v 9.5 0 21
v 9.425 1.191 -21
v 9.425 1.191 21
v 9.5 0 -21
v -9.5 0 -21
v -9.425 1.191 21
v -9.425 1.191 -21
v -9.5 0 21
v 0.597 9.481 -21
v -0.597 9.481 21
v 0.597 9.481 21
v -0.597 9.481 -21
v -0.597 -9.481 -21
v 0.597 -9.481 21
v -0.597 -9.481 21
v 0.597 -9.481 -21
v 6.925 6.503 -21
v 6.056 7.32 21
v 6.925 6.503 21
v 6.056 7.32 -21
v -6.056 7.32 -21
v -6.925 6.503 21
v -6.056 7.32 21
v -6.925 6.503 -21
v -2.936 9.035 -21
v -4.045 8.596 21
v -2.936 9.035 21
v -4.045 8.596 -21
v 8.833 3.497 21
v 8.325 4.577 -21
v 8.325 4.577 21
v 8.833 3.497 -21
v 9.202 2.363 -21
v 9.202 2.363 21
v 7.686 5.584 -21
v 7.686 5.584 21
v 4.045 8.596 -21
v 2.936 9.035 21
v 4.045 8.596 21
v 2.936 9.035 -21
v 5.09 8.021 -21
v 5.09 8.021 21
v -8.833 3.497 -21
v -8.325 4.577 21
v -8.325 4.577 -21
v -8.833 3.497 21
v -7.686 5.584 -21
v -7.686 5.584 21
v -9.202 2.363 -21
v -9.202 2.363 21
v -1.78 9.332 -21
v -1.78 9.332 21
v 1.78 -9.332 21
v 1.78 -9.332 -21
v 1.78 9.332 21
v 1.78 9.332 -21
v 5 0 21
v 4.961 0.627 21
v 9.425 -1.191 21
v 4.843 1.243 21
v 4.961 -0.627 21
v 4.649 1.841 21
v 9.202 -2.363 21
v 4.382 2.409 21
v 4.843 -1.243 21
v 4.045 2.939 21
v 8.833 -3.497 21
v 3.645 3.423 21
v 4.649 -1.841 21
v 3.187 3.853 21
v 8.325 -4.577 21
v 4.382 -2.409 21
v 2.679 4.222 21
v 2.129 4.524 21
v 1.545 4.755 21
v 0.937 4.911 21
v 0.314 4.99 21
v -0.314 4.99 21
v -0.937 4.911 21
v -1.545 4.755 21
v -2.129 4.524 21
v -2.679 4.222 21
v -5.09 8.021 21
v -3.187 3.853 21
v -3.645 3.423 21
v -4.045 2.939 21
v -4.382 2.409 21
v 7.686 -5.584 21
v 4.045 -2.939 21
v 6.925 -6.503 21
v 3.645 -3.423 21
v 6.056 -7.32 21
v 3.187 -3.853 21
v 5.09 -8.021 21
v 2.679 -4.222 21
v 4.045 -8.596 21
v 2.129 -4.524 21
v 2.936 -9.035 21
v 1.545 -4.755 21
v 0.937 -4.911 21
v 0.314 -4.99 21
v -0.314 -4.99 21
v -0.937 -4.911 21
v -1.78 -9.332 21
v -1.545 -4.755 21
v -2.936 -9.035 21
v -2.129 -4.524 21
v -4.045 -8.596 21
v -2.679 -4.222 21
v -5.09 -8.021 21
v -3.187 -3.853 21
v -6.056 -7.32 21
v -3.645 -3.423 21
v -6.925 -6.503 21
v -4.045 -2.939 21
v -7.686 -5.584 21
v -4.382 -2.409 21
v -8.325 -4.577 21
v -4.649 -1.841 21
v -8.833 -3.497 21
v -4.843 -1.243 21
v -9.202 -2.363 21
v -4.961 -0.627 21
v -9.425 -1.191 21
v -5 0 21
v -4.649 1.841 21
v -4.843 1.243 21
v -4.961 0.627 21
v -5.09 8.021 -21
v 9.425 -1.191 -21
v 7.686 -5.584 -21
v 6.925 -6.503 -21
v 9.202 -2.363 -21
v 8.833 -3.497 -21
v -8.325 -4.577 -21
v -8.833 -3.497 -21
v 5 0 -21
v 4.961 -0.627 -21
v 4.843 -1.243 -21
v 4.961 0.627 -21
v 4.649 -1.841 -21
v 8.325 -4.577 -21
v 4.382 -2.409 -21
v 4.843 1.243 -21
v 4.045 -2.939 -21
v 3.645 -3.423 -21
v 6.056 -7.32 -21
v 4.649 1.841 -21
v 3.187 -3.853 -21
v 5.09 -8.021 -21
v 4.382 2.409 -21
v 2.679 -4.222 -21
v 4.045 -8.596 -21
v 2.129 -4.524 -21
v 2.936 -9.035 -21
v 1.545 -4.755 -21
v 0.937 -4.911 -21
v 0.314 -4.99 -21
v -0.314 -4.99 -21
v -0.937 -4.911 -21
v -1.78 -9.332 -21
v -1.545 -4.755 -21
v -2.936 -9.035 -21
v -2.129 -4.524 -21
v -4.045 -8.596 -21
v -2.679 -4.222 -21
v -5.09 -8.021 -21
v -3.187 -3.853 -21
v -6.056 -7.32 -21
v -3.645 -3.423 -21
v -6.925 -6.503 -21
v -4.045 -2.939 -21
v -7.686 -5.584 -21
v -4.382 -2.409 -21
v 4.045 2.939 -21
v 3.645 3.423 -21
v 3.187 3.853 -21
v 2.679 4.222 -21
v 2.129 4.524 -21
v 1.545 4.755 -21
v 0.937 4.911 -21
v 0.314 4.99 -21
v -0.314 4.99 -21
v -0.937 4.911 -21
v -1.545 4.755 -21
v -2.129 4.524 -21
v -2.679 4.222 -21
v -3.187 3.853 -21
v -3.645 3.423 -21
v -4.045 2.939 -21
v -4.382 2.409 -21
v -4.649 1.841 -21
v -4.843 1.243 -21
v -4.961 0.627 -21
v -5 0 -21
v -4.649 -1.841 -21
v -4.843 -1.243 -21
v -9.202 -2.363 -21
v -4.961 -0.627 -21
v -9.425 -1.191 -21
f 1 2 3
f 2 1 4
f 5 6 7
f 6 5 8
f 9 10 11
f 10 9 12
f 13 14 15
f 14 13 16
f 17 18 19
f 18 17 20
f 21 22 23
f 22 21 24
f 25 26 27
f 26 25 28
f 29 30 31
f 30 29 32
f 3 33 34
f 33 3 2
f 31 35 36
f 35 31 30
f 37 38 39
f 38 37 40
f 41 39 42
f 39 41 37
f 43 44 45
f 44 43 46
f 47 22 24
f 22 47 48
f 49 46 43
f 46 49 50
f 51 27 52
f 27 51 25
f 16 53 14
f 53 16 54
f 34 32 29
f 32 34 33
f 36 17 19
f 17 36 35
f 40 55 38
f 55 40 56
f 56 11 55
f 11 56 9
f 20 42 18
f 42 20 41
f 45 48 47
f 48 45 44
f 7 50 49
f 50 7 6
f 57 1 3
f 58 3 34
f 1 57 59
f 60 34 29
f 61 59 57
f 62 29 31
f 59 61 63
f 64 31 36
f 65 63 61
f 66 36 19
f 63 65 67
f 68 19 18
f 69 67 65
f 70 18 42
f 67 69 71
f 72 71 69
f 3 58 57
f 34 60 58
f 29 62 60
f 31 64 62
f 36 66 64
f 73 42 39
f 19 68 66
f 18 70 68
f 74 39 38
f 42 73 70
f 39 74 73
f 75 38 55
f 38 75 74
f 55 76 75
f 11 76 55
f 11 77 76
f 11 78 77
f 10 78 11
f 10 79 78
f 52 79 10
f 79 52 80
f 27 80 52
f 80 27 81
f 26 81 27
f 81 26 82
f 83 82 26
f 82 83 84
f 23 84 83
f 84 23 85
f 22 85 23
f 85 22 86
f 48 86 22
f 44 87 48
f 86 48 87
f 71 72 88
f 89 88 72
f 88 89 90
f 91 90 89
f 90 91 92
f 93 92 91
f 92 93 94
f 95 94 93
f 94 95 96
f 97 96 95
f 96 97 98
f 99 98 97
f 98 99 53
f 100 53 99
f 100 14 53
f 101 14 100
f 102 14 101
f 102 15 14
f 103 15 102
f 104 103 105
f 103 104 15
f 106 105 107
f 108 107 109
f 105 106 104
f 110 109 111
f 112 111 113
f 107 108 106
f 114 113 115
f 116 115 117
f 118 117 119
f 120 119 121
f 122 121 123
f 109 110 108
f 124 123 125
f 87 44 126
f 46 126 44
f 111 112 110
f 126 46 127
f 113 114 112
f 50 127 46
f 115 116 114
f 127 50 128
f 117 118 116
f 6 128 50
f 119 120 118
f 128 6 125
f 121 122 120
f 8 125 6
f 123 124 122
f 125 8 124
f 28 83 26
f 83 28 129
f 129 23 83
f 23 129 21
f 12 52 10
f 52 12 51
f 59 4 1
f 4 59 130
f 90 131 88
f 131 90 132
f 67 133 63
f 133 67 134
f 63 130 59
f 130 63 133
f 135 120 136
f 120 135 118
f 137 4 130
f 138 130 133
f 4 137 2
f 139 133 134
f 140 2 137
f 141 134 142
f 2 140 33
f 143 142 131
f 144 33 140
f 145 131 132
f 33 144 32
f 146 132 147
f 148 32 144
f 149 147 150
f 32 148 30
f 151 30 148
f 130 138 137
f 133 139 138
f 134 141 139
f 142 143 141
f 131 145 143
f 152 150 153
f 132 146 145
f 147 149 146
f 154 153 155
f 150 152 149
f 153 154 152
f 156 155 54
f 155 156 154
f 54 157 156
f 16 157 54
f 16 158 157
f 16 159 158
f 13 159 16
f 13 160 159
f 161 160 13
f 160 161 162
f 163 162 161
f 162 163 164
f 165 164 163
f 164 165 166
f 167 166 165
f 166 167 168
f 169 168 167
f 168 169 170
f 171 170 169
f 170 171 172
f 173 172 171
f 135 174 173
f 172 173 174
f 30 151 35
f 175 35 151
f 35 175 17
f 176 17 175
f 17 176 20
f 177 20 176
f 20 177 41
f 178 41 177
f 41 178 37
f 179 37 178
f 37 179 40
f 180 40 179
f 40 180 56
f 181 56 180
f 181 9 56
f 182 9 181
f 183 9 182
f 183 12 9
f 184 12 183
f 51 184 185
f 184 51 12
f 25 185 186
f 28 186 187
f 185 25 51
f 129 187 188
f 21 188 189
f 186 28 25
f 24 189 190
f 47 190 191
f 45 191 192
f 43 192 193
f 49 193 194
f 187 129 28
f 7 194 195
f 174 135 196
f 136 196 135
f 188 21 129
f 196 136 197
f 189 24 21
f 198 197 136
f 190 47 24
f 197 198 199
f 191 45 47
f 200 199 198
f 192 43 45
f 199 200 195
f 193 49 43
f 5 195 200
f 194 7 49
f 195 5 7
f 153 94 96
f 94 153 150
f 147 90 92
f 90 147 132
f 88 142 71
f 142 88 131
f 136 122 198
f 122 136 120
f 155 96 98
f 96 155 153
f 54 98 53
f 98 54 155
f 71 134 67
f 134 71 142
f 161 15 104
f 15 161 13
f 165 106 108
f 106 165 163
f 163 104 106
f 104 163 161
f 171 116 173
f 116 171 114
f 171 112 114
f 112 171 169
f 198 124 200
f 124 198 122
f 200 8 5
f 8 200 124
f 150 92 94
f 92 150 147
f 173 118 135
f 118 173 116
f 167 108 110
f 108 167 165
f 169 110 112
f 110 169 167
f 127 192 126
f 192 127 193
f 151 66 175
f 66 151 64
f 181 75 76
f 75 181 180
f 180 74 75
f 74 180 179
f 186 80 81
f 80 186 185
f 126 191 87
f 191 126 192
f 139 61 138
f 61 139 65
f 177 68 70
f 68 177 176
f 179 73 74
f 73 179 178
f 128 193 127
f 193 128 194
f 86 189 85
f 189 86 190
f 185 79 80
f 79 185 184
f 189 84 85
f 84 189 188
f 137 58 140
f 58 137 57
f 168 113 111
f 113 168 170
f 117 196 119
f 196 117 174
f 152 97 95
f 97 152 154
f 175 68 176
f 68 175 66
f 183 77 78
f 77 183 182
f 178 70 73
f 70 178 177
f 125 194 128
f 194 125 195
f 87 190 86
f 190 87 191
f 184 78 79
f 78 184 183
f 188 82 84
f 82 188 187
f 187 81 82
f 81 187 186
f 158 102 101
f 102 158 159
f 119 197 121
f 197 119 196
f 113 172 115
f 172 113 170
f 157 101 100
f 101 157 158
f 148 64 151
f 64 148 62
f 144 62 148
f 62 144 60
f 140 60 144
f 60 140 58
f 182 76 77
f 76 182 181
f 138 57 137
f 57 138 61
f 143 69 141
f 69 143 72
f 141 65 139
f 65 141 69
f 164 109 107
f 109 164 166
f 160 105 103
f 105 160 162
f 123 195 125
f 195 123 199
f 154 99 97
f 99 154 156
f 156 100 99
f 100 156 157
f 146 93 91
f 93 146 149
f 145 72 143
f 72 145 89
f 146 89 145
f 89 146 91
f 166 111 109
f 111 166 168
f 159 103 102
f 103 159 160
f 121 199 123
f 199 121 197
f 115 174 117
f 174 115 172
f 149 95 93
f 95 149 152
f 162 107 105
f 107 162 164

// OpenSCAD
$fn = 50;


difference() {
	union() {
		translate(v = [0, 0, -21.0000000000]) {
			cylinder(h = 42, r = 9.5000000000);
		}
	}
	union() {
		translate(v = [0, 0, -100.0000000000]) {
			cylinder(h = 200, r = 5.0000000000);
		}
	}
}
